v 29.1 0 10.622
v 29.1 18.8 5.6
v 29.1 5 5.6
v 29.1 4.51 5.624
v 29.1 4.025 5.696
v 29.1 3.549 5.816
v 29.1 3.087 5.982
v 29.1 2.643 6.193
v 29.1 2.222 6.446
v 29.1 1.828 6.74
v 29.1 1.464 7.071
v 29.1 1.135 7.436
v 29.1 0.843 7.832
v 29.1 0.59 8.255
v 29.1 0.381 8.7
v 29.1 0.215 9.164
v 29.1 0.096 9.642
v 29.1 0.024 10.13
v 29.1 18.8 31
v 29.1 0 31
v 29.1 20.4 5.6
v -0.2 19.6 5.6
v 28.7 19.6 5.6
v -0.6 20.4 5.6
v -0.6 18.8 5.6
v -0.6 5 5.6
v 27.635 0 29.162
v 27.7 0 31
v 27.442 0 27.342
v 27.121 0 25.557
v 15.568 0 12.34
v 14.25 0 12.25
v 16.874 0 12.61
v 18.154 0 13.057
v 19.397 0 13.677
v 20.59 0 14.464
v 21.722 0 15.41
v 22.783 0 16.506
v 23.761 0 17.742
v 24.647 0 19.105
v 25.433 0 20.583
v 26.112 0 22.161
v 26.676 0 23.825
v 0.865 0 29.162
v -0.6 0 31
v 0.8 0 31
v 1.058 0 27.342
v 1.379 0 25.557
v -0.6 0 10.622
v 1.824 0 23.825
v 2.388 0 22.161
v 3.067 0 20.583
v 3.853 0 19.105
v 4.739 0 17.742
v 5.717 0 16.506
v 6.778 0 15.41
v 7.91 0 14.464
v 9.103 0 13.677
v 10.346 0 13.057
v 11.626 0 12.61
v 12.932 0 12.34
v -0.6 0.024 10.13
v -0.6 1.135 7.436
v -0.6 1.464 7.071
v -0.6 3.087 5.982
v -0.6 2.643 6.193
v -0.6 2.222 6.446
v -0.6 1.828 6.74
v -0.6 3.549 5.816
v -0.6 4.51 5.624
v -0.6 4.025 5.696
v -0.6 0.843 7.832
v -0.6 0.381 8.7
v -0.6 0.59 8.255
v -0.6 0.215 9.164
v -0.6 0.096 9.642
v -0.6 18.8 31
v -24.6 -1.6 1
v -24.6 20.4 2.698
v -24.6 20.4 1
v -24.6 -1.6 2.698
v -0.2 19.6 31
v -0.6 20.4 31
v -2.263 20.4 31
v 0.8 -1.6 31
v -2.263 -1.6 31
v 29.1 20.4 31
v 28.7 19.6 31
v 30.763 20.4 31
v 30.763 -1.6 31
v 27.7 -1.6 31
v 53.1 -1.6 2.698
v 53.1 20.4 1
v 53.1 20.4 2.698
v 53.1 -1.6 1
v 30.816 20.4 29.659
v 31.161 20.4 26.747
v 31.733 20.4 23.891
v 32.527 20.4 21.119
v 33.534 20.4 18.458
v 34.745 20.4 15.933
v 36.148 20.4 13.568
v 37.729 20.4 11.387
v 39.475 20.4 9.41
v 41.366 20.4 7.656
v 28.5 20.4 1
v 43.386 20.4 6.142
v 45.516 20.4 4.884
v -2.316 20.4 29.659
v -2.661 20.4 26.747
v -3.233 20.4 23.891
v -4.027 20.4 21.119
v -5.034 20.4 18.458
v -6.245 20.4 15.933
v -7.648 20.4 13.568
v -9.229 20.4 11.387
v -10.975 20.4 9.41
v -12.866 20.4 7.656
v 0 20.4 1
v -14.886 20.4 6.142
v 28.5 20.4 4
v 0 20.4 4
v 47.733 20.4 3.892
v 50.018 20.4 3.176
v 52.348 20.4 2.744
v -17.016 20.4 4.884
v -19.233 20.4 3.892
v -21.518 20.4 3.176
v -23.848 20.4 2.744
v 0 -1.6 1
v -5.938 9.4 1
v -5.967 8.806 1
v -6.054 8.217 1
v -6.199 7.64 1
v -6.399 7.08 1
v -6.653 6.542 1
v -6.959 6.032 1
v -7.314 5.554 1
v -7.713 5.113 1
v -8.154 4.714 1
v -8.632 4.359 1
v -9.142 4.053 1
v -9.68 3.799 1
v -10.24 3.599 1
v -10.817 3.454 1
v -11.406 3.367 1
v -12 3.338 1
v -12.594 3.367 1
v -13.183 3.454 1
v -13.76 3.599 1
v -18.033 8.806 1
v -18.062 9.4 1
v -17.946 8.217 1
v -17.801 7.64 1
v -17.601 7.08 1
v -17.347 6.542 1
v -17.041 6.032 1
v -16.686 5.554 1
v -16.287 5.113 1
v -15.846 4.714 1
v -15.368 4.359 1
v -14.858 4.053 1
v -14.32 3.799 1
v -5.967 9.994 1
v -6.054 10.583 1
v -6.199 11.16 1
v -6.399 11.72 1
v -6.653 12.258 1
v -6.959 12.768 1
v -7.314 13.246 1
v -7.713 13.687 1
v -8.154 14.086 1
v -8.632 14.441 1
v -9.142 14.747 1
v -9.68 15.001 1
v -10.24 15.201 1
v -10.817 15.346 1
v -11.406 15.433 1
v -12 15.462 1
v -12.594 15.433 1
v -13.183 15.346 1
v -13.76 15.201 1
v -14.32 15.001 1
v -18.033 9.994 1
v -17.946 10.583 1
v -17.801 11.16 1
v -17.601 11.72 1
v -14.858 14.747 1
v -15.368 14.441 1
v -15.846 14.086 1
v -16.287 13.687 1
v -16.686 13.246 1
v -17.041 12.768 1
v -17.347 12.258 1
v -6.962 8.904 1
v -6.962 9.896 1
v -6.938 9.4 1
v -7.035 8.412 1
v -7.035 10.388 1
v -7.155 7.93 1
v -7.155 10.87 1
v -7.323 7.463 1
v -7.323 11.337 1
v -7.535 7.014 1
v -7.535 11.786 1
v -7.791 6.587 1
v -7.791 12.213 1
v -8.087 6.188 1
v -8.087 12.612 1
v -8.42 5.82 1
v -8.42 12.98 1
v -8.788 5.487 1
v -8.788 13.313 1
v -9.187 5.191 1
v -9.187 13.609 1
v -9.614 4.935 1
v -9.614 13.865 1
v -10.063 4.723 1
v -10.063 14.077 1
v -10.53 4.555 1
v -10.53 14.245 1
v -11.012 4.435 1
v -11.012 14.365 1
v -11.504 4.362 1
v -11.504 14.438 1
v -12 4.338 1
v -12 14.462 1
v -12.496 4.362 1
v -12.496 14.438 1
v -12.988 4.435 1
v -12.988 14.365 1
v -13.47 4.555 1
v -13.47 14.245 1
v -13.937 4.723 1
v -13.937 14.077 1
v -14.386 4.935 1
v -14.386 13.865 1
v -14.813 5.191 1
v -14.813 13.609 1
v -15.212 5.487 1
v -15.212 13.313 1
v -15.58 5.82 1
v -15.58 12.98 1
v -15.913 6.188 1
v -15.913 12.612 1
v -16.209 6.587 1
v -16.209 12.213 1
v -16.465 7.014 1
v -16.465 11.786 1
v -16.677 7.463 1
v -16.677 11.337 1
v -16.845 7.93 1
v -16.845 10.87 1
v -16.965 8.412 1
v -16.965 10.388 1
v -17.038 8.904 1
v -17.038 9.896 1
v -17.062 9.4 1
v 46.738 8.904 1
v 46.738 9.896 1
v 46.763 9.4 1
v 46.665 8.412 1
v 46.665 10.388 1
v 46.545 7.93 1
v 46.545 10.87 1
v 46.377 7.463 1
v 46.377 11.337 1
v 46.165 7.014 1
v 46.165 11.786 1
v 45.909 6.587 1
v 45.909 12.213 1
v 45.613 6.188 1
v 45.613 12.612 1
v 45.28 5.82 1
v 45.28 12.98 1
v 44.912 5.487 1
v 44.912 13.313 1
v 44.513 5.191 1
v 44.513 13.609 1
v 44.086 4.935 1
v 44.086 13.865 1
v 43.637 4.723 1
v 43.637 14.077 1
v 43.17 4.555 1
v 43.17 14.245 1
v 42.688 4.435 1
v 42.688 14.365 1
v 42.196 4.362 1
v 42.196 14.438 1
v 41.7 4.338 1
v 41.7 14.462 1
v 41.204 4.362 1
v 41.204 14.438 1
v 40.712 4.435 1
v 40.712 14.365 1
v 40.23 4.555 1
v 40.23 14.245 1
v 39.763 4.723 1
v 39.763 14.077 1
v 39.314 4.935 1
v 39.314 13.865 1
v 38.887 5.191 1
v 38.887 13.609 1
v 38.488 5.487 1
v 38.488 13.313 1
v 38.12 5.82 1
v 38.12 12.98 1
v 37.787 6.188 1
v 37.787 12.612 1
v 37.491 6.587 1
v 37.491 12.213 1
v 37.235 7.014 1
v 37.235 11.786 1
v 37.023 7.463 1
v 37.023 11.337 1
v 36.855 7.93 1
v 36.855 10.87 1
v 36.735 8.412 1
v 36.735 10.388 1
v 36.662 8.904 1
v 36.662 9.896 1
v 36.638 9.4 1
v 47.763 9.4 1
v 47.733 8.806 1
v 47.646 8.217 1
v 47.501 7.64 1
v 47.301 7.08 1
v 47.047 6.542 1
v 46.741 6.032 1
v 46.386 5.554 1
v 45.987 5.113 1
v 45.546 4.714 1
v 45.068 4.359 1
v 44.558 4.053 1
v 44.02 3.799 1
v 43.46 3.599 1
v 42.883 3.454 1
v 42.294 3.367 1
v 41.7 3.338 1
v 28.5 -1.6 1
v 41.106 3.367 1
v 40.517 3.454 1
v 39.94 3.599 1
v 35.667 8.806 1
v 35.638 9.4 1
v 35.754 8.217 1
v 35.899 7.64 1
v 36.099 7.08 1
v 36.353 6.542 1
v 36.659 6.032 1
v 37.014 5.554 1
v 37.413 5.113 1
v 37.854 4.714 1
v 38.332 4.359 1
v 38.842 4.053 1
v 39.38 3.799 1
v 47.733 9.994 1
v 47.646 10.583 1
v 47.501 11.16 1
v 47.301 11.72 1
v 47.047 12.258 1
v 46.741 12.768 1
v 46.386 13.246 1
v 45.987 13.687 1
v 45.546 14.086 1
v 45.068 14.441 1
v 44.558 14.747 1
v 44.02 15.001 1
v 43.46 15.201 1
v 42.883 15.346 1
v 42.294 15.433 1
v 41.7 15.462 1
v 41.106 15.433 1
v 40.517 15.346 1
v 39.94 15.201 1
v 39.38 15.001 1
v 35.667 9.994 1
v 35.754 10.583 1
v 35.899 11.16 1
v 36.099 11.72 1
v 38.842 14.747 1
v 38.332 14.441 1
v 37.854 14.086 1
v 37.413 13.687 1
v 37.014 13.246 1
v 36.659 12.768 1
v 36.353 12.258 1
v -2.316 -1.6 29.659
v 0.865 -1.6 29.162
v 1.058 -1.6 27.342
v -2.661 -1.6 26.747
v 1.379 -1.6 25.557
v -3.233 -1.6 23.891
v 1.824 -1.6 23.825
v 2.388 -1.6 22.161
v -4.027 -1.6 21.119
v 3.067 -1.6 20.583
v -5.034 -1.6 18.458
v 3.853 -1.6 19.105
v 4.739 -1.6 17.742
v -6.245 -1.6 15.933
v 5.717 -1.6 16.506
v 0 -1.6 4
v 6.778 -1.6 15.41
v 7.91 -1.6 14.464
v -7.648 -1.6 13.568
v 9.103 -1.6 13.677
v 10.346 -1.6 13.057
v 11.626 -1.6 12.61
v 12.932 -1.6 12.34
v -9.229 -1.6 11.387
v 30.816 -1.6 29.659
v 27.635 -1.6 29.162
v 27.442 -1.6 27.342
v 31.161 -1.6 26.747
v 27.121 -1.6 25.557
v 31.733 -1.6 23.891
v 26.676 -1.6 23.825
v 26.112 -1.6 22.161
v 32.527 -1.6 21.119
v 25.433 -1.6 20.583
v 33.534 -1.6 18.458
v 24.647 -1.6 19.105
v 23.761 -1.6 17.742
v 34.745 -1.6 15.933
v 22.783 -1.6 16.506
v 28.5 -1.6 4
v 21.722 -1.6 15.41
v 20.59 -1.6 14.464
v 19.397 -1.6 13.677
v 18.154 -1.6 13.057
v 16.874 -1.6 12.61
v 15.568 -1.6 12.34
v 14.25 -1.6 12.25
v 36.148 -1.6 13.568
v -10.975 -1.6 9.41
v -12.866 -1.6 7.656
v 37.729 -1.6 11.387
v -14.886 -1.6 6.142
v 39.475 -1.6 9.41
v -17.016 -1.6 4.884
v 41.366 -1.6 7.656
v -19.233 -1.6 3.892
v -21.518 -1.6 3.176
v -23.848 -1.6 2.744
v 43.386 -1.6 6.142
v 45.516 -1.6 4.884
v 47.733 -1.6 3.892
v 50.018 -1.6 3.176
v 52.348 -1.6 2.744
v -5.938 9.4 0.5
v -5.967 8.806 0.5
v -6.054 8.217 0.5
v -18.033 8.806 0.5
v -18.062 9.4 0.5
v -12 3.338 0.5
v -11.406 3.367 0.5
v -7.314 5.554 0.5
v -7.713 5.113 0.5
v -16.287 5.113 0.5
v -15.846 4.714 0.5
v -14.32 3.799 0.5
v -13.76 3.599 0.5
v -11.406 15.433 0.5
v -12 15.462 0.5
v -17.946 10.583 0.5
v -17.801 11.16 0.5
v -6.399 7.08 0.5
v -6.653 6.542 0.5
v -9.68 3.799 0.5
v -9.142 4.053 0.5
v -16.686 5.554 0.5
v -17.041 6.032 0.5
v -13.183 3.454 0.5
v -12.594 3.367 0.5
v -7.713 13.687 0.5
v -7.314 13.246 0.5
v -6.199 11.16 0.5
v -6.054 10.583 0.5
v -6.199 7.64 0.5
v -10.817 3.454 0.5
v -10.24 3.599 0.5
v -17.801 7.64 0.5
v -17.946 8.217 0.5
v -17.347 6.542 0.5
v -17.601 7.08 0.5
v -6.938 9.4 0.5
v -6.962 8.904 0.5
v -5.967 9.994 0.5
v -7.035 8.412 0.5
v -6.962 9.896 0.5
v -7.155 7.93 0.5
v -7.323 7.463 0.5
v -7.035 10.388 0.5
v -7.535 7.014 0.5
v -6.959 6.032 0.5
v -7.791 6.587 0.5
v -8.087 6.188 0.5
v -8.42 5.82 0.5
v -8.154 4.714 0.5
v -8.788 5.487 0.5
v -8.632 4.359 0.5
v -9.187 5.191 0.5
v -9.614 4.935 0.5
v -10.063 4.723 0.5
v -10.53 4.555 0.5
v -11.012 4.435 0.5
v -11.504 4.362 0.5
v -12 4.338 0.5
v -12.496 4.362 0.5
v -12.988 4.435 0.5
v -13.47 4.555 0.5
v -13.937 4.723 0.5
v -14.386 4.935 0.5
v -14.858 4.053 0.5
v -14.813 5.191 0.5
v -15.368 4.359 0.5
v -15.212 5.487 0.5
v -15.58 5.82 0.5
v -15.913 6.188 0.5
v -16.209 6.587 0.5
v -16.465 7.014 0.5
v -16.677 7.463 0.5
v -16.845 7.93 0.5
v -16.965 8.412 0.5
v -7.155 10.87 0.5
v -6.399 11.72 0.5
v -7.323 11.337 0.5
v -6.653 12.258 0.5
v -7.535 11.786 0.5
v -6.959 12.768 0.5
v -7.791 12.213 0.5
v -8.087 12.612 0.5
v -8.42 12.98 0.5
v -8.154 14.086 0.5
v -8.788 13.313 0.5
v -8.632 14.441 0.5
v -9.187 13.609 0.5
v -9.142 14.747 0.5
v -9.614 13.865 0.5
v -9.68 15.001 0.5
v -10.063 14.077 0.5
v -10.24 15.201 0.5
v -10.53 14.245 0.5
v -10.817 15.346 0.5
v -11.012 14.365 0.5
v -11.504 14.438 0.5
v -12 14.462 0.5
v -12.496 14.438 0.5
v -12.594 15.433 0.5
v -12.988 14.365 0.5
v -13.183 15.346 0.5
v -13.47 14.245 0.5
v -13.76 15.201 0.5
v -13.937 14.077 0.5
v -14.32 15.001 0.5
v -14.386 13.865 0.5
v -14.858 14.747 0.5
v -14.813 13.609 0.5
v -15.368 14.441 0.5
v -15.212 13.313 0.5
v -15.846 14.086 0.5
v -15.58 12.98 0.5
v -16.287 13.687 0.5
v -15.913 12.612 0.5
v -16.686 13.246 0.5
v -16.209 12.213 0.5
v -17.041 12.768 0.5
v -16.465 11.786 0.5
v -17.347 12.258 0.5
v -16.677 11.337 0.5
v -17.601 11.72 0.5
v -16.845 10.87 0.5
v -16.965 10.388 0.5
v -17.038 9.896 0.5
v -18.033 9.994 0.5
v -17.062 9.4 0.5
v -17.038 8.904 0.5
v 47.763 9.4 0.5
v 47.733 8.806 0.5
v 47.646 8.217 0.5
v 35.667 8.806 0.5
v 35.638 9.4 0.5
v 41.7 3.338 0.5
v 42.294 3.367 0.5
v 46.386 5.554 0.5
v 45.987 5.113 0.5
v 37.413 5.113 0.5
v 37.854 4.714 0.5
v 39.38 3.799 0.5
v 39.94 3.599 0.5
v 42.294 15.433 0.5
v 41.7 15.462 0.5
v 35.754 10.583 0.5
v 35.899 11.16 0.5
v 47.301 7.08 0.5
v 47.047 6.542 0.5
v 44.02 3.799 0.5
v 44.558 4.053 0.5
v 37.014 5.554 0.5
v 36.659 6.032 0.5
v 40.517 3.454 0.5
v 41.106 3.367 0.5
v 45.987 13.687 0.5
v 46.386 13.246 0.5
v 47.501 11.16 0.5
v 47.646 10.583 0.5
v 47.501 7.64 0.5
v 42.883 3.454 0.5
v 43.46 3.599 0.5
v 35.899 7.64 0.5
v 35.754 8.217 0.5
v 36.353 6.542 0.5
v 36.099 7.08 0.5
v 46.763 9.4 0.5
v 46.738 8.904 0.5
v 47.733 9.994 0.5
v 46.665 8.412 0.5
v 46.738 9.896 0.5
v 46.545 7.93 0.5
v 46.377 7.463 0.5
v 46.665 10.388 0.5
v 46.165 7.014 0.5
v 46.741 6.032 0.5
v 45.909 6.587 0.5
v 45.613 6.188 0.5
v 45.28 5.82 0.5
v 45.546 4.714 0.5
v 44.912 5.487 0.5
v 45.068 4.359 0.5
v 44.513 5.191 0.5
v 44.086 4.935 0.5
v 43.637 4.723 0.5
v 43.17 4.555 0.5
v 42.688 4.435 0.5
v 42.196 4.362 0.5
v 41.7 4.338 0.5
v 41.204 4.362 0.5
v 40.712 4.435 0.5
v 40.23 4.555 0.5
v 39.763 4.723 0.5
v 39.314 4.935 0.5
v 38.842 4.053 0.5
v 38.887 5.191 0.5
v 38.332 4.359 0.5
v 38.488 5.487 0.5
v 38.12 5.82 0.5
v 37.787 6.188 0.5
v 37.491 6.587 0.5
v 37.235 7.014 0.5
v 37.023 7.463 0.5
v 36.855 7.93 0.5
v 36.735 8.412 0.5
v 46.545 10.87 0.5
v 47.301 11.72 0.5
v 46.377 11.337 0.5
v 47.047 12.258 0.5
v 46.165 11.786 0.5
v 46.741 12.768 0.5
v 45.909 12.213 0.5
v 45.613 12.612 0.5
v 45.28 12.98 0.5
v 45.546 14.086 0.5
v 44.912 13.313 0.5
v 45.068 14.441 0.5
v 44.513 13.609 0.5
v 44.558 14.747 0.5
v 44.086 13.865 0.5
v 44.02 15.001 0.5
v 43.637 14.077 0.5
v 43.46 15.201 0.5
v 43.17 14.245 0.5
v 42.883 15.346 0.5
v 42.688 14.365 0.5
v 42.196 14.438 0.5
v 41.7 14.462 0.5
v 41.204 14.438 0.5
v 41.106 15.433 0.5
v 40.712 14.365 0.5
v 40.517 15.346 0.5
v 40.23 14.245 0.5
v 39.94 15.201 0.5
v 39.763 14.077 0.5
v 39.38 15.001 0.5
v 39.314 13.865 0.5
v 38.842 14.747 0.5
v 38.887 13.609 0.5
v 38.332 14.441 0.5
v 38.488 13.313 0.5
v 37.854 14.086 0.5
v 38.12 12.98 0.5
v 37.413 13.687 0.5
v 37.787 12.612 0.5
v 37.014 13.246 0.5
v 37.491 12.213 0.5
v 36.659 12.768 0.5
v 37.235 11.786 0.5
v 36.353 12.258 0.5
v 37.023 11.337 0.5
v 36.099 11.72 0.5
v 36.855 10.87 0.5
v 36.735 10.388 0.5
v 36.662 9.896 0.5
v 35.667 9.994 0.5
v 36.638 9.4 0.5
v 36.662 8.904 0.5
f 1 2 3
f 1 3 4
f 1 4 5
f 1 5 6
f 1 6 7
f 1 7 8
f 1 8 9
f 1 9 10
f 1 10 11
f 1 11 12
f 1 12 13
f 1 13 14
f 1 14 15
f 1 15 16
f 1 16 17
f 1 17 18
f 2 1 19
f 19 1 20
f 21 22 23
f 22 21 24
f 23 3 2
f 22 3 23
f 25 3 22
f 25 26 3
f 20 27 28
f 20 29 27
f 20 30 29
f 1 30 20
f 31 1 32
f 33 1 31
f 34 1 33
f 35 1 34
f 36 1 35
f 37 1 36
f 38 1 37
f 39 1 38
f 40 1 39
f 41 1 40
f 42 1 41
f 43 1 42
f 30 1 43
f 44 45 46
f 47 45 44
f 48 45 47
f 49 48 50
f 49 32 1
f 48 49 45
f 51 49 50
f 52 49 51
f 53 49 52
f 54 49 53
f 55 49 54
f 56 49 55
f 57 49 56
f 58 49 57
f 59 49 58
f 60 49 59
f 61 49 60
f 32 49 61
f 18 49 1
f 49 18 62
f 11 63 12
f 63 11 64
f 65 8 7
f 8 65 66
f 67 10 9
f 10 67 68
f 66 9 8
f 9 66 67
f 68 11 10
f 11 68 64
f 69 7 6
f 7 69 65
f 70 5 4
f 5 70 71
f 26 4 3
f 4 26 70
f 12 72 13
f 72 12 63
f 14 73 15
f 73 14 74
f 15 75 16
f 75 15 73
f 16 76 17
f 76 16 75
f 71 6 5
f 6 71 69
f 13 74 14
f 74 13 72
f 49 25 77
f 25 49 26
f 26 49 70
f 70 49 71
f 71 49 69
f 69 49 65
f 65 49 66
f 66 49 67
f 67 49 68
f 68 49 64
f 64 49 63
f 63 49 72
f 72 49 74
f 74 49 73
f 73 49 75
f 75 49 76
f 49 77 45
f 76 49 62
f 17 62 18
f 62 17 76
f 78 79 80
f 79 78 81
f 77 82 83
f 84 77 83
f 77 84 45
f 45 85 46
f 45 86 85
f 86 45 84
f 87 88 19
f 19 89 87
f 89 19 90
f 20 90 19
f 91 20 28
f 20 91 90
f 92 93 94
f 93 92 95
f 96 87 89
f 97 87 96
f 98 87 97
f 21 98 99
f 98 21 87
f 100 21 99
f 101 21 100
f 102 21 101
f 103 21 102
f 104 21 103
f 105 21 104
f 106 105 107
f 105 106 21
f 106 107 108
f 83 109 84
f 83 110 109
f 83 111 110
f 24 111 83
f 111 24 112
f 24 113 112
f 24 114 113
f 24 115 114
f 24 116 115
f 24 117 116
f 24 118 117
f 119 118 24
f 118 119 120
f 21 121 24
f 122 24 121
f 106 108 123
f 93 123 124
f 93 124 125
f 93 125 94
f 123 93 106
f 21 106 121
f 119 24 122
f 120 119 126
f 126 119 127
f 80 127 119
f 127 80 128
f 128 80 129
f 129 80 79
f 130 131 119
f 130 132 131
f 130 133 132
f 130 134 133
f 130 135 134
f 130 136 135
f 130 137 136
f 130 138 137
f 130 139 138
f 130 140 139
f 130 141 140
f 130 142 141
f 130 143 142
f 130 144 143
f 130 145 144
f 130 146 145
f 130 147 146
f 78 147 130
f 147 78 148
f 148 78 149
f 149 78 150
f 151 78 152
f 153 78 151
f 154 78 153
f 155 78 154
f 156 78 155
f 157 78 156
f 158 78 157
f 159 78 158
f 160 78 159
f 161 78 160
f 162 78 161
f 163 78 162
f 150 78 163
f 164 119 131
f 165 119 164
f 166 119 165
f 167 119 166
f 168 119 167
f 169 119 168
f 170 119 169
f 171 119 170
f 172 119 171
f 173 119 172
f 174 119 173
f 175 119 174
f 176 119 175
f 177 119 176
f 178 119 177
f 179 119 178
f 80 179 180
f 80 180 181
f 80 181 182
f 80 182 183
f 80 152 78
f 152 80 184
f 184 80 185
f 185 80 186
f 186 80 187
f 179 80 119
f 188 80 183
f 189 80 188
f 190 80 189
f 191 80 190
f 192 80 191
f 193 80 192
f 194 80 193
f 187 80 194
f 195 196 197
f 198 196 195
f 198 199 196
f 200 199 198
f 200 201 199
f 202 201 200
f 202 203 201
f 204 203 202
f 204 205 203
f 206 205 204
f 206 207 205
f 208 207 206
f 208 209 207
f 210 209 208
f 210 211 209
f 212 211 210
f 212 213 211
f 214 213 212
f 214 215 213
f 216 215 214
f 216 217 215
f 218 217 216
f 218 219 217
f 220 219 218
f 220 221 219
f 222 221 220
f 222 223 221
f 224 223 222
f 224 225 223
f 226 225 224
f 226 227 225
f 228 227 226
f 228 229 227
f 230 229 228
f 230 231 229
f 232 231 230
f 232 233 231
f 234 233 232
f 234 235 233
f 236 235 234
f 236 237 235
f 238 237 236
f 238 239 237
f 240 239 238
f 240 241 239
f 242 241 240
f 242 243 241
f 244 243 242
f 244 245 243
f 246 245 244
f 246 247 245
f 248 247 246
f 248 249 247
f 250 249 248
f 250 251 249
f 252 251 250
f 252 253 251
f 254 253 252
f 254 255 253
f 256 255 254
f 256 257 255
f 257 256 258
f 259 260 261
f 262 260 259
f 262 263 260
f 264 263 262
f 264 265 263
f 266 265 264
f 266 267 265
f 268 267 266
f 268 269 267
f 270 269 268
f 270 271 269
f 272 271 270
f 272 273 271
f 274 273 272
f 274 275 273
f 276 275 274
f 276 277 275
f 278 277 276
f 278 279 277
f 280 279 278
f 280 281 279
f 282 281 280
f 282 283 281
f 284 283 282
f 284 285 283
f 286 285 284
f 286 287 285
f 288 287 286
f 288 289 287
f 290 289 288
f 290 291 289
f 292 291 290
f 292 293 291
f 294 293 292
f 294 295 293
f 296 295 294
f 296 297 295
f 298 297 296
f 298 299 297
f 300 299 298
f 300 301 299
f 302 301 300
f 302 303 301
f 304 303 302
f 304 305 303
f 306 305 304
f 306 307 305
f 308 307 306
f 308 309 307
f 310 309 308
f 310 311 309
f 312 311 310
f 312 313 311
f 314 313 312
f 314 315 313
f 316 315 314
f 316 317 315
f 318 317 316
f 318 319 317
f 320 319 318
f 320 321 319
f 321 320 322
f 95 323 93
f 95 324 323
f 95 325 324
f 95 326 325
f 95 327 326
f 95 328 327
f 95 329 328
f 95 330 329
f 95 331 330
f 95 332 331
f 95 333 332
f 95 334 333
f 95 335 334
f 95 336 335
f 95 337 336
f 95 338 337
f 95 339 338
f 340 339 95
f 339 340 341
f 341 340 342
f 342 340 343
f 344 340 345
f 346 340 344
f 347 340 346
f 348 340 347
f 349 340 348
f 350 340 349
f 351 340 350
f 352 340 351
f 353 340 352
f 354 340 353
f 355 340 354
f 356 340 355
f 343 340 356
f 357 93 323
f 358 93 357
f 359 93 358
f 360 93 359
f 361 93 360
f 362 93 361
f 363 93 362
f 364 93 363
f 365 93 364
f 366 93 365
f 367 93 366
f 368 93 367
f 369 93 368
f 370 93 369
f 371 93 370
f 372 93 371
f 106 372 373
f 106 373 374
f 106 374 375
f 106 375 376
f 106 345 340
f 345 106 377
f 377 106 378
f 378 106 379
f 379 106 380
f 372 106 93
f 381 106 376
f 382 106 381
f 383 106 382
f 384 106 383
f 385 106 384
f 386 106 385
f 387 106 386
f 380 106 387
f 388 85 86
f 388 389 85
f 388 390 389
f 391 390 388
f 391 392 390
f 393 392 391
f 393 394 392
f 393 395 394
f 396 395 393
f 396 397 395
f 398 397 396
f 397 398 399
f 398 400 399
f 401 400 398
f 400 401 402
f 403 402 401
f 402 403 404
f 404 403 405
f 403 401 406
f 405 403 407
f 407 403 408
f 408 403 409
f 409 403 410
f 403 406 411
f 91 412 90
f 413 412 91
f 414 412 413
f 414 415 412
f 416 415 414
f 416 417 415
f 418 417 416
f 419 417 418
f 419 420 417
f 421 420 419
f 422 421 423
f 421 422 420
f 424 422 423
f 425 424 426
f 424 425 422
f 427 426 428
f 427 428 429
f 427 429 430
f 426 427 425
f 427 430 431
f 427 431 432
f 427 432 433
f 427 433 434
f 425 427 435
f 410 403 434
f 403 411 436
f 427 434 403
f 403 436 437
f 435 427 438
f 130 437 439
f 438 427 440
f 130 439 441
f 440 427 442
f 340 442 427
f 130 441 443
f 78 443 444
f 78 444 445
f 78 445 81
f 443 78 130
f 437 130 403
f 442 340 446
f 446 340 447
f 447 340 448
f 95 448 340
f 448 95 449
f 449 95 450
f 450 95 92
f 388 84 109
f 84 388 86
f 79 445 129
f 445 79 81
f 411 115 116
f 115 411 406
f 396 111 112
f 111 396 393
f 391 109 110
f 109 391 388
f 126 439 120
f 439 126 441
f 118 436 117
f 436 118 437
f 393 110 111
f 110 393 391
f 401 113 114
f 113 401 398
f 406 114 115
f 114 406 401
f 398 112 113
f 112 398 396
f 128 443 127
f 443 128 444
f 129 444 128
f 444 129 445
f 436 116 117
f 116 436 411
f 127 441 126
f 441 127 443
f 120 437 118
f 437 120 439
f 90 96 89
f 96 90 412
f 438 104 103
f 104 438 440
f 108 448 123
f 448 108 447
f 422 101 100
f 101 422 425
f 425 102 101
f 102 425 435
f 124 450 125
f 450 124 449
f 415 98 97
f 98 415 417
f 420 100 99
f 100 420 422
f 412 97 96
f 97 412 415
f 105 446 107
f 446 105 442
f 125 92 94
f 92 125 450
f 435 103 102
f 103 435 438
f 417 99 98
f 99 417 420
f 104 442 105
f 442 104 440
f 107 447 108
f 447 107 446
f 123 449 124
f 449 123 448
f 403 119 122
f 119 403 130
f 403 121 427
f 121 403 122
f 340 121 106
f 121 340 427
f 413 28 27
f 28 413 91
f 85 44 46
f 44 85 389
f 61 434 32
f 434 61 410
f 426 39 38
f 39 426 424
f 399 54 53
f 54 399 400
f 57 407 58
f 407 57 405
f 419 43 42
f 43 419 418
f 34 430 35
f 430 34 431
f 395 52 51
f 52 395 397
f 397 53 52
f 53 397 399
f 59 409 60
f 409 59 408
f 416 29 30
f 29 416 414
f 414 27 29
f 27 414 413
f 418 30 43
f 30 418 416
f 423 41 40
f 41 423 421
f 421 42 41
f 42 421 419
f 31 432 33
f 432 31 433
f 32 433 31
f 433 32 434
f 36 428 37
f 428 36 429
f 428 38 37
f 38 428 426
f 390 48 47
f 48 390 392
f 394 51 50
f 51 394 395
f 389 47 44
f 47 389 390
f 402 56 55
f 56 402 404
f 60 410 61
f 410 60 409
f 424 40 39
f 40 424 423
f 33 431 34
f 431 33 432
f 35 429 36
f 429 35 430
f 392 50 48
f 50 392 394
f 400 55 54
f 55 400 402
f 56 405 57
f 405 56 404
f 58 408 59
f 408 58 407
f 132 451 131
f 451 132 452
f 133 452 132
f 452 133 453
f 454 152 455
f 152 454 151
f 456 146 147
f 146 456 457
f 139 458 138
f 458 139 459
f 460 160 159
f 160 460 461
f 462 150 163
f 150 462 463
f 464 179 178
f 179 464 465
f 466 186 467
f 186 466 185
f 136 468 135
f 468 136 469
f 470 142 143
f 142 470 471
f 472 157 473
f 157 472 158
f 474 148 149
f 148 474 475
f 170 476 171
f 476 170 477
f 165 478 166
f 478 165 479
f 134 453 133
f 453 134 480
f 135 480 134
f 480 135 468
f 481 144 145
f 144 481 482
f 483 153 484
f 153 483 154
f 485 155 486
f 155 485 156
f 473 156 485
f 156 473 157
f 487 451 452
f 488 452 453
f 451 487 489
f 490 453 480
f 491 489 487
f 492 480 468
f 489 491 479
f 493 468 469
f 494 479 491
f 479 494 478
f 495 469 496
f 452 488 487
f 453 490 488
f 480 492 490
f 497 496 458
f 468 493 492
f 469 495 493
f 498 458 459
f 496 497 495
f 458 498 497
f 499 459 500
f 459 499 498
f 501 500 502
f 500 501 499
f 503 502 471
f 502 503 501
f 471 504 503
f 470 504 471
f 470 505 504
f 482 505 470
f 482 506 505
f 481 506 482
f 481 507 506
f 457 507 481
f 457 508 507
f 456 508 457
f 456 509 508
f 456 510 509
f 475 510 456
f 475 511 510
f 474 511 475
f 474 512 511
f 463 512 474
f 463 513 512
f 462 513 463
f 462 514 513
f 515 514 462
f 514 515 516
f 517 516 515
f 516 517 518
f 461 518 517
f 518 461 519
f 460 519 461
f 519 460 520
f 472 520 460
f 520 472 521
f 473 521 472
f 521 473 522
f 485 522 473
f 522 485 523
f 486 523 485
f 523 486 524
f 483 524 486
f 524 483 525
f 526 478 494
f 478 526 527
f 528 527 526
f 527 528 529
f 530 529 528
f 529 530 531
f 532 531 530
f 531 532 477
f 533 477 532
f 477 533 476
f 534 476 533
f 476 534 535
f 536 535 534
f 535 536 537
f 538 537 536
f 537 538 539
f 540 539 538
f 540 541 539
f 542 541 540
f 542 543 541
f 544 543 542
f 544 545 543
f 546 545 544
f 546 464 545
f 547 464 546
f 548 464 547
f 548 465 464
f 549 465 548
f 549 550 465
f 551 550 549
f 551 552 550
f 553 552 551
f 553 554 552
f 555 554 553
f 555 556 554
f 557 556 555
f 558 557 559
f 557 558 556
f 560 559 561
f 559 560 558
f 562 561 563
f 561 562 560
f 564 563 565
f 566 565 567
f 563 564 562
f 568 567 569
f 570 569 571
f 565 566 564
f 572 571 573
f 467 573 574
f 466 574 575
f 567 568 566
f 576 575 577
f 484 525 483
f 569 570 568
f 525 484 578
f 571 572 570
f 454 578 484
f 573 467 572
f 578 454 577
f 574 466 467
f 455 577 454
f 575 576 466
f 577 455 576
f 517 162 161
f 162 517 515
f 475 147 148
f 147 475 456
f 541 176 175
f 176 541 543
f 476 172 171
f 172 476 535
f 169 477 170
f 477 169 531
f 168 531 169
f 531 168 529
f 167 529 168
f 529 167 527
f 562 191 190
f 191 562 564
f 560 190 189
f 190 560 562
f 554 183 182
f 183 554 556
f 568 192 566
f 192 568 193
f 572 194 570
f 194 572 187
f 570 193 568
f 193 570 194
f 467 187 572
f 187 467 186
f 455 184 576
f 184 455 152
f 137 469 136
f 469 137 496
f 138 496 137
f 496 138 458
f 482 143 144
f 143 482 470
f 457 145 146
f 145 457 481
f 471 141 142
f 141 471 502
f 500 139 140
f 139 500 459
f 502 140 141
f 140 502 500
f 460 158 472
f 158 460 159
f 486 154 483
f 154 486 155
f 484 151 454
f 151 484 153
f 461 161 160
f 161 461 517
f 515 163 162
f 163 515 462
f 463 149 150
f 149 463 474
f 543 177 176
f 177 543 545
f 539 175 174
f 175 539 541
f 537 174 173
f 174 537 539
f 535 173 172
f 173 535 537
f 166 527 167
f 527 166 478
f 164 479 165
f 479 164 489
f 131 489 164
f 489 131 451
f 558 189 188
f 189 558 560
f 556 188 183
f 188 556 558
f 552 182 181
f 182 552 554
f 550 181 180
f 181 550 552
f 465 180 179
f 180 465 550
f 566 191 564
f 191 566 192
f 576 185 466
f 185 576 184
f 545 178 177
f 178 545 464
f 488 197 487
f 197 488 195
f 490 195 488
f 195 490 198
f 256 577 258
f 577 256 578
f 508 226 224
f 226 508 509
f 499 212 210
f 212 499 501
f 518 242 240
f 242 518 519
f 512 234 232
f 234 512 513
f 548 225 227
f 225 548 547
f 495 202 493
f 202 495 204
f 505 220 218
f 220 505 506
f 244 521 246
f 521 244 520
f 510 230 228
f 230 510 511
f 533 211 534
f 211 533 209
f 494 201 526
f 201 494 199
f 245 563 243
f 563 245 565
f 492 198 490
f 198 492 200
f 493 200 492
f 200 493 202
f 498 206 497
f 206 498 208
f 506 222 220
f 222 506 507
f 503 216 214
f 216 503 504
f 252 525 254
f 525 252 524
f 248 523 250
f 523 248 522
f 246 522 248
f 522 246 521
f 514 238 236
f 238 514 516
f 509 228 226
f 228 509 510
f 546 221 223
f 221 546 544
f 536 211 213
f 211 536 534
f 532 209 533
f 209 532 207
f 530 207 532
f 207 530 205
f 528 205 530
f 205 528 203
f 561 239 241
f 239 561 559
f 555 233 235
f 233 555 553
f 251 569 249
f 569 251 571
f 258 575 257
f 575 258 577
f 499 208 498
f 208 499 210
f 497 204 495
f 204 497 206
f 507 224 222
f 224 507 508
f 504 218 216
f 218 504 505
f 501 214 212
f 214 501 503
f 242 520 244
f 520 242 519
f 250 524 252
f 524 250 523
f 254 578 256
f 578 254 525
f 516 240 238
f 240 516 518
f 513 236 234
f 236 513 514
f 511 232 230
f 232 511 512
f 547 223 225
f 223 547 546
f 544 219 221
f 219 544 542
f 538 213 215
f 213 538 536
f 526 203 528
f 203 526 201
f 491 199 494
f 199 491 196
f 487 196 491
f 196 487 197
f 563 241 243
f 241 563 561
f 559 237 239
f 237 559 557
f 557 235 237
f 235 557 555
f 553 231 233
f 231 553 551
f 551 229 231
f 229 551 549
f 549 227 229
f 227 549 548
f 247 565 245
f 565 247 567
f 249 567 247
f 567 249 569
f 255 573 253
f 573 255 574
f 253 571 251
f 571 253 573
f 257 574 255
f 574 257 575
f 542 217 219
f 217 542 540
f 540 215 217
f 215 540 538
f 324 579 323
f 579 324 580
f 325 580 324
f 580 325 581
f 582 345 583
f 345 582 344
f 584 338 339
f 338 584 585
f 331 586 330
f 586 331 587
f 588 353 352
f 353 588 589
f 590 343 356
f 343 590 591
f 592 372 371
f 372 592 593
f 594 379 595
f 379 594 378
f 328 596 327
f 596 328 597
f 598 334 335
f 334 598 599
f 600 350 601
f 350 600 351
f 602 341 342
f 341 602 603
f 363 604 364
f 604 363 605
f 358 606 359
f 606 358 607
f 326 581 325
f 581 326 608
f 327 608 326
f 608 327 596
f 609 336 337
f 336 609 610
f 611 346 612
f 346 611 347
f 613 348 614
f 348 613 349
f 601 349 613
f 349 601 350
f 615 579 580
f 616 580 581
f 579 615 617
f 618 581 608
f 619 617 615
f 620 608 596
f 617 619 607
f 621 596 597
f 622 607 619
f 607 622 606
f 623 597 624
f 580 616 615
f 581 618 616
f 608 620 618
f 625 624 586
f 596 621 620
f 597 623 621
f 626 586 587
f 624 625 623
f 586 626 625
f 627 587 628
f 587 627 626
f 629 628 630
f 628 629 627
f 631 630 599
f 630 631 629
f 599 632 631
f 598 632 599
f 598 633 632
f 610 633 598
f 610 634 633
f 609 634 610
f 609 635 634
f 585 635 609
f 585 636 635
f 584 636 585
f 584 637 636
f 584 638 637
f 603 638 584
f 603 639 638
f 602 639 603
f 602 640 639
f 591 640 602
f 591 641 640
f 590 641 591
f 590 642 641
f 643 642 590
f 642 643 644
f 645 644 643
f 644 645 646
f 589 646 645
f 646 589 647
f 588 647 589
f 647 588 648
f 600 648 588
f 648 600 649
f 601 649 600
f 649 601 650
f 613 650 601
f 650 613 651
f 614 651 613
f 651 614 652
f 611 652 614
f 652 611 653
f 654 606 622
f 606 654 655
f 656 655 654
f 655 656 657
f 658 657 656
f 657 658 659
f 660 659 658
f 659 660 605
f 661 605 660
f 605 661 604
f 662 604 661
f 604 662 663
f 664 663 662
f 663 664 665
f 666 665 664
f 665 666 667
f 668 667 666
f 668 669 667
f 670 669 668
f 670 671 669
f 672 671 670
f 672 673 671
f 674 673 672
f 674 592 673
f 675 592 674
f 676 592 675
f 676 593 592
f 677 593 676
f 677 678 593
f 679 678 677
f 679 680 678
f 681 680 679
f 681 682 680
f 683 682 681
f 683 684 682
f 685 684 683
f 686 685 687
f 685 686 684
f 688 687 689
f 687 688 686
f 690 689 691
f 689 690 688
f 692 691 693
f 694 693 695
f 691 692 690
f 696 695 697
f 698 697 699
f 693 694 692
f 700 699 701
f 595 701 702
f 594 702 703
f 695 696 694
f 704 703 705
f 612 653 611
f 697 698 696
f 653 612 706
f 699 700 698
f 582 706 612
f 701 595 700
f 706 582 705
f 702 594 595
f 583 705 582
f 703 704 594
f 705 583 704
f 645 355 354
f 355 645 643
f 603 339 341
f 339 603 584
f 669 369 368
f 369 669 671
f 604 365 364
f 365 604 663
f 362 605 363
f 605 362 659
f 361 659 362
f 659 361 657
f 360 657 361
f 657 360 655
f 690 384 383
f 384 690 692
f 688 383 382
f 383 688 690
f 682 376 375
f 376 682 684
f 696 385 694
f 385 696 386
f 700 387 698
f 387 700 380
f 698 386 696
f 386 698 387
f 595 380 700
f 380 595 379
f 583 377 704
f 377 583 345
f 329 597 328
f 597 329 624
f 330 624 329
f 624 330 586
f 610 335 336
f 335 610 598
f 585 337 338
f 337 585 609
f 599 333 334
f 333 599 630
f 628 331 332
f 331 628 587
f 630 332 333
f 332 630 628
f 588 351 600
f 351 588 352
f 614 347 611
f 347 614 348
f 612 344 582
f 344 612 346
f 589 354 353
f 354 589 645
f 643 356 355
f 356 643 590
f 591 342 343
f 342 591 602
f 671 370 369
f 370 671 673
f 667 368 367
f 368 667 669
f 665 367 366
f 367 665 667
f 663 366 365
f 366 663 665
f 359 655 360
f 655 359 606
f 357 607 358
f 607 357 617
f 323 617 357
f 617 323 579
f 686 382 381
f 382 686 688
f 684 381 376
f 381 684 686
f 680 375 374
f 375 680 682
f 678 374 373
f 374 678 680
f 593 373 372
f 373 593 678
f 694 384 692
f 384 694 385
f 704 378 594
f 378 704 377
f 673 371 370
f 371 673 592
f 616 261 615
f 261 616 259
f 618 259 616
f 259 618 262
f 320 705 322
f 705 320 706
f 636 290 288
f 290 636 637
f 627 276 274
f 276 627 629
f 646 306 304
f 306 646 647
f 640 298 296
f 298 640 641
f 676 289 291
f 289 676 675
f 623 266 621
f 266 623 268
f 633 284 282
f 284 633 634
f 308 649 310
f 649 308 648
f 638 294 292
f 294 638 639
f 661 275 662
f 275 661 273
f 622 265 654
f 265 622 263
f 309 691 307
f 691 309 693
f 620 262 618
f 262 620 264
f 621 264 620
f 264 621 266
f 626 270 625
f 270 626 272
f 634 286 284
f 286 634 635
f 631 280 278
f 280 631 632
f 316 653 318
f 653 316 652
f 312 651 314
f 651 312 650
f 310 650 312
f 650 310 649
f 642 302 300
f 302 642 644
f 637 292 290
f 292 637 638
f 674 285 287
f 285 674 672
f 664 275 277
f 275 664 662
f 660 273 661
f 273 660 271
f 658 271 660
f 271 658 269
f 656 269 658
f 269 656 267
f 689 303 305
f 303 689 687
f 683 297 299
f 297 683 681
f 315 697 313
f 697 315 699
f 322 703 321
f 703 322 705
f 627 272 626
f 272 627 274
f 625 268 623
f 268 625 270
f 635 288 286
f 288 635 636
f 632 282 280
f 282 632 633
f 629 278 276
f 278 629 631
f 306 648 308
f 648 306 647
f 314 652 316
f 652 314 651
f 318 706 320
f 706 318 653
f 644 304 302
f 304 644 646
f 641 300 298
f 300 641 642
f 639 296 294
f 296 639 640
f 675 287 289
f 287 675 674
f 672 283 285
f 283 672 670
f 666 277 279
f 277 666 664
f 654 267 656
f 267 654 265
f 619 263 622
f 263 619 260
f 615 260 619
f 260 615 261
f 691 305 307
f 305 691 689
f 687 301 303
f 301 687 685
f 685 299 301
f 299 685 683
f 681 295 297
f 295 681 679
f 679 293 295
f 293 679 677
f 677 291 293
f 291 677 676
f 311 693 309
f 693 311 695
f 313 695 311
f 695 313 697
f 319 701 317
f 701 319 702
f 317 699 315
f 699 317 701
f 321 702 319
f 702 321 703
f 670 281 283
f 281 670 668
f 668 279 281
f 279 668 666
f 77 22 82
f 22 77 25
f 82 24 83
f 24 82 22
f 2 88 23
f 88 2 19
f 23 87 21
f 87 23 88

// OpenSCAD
// file: ../../modules/roundedcube.scad
// A single integer creates a cube with the specified wall distance. Default [1, 1, 1]
// size = 5;

// An [x, y, z] vector specifies distance on each axis. Default [1, 1, 1]
// size = [2, 3, 5];

// Whether or not to place the object centered on the origin. Default false
// center = true|false;

// Specify a rounding radius. Default 0.5
// radius = 0.5

// Specify where to apply the rounded corners. Default "all"
// apply_to = "all"|"x"|"y"|"z"|"zmax"|"zmin"|"xmax"|"xmin"|"ymax"|"ymin"

// Higher definition curves
$fs = $preview ? $fs : 0.01;

module roundedcube(size = [1, 1, 1], center = false, radius = 0.5, apply_to = "all") {
	// If single value, convert to [x, y, z] vector
	size = (size[0] == undef) ? [size, size, size] : size;

    echo(str("roundedcube(", size, ", radius=", radius, ", apply_to=", apply_to));

	translate_min = 0;
	translate_xmax = size[0];
	translate_ymax = size[1];
	translate_zmax = size[2];

	diameter = radius * 2;

    function adj2(i,dt,df) = (i==0)?dt:df;
    function adj(i,d) = adj2(i,d,-d);
    function adjR(i) = adj(i,radius);
    
	obj_translate = (center == false) ?
		[0, 0, 0] : [
			-(size[0] / 2),
			-(size[1] / 2),
			-(size[2] / 2)
		];

	translate(v = obj_translate) {
		hull() {
			for (xi = [0:1]) {
                translate_x = [translate_min, translate_xmax][xi];
				x_at = (xi == 0) ? "min" : "max";
				for (yi = [0:1]) {
                    translate_y = [translate_min, translate_ymax][yi];
   				    y_at = (yi == 0) ? "min" : "max";
					for (zi = [0:1]) {
                        translate_z = [translate_min, translate_zmax][zi];
    	     			z_at = (zi == 0) ? "min" : "max";

						if (
							(apply_to == "all") ||
							(apply_to == "xmin" && x_at == "min") || (apply_to == "xmax" && x_at == "max") ||
							(apply_to == "ymin" && y_at == "min") || (apply_to == "ymax" && y_at == "max") ||
							(apply_to == "zmin" && z_at == "min") || (apply_to == "zmax" && z_at == "max")
						) {
                            // GGS: Separate translates to asccomodate changes allowing sizes < 3 x radius
    						translate(v = [translate_x+adjR(xi), translate_y+adjR(yi), translate_z+adjR(zi)])
							  sphere(r = radius);
						} else {
							rotate = 
								(apply_to == "xmin" || apply_to == "xmax" || apply_to == "x") ? [0, 90, 0] : (
								(apply_to == "ymin" || apply_to == "ymax" || apply_to == "y") ? [90, 90, 0] :
								[0, 0, 0]
							);
                            //Compute cylinder height to make it work with cubbe sizes up to 3xradius which did not work
                            // in original because cylinders would "eat" spheres
                            h1 =
								(apply_to == "xmin" || apply_to == "xmax" || apply_to == "x") ? size[0]-radius : (
								(apply_to == "ymin" || apply_to == "ymax" || apply_to == "y") ? size[1]-radius :
								size[2]-radius
							);
                            h2 =
								(apply_to == "xmin" || apply_to == "xmax" || apply_to == "x") ? size[0]/4 : (
								(apply_to == "ymin" || apply_to == "ymax" || apply_to == "y") ? size[1]/4 :
								size[2]/4
							);
                            h=(h1<h2 && h1>0)?h1:h2;
                            height=(h<radius)?h:radius;
                            //echo(str("h1=",h1));
                            //echo(str("h2=",h2));
                            //echo(str("h=",h));
                            //echo(str("height=",height));
                            trans =
								(apply_to == "xmin" || apply_to == "xmax" || apply_to == "x") ? [adj2(xi,0,-height),adjR(yi),adjR(zi)] : (
								(apply_to == "ymin" || apply_to == "ymax" || apply_to == "y") ? [adjR(xi),adj2(yi,0,-height),adjR(zi)] :
								[adjR(xi),adjR(yi),adj2(zi,0,-height)]
							);
                            //echo(trans);
                            translate(v = [translate_x+trans[0], translate_y+trans[1], translate_z+trans[2]])
		  					  rotate(a = rotate)
							    cylinder(h = height, r = radius, center = false);
						}
					}
				}
			}
		}
	}
}
// main file
usg_width = 28.5;
usg_width_feet = 29.25;
usg_depth_to_feet = 21.5;
usg_depth = 135.1;
usg_height = 135.1;
usg_corner_fillet = 10;
usg_corner_fillet_rad = usg_corner_fillet / 2;
usg_mounthole_front = 65.5;
usg_mounthole_bottom = 16.25;
usg_mounthole_diameter = 3;

echo("USG_DEPTH=", usg_depth);
echo("USG_DEPTH_HALF=", usg_depth/2);

//foot_diameter = 9.525;

stiffness = 1.6;
tolerance = 0.6;
clearance = 3;

foot_depth = 22;
foot_width = 24;
foot_height = 30;

grip_height = 0.4;
grip_depth = grip_height * 4;

use <../../modules/roundedcube.scad>;

$fn = $preview ? 8 : 64;

module usg() {
    difference() {
        translate([usg_width, 0, 0]) rotate([0, -90, 0]) hull() {
            // bottom front
            translate([usg_corner_fillet_rad, usg_corner_fillet_rad, 0]) cylinder(h=usg_width, d=usg_corner_fillet);
            translate([usg_height - usg_corner_fillet_rad, usg_corner_fillet_rad, 0]) cylinder(h=usg_width, d=usg_corner_fillet);
            translate([usg_corner_fillet_rad, usg_height - usg_corner_fillet_rad, 0]) cylinder(h=usg_width, d=usg_corner_fillet);
            translate([usg_height - usg_corner_fillet_rad, usg_height - usg_corner_fillet_rad, 0]) cylinder(h=usg_width, d=usg_corner_fillet);
        }
        //cube([usg_width, usg_depth, usg_height], center=false);
        union() {
            translate([usg_width, usg_depth / 2, usg_mounthole_bottom + usg_mounthole_diameter]) {
                //translate([-50, 0, 6]) rotate([0, 90, 0]) cylinder(h=100, r=0.5);
                hull() {
                    rotate([0, 90, 0]) cylinder(h=20, r=usg_mounthole_diameter);
                    translate([0, 0, 12]) rotate([0, 90, 0]) cylinder(h=20, r=usg_mounthole_diameter);
                }
                hull() {
                    translate([0, 6, 6]) rotate([0, 90, 0]) cylinder(h=20, r=usg_mounthole_diameter);
                    translate([0, -6, 6]) rotate([0, 90, 0]) cylinder(h=20, r=usg_mounthole_diameter);
                }
            }
        }
    }
}

module foot_bumper() {
    foot_diameter = 9.525;
    //foot_diameter = 8;
    buffer = 0.6;
    nub_width = 1;
    foot_height = 0.5;

    difference() {
        rotate([90, 0, 0]) cylinder(h=foot_height, r=(foot_diameter+buffer+nub_width*2) / 2);
        rotate([90, 0, 0]) cylinder(h=foot_height, r=(foot_diameter+buffer) / 2, $fn=64);
    }
}

module usg_feet() {
    feet_width = foot_width * 2 + usg_width + tolerance * 2;
    usg_carveout_width = usg_width + tolerance * 2;

    translate([-(foot_width + tolerance), -stiffness, 0]) 
    difference() {
        cube([feet_width, foot_depth, foot_height]);
        translate([-stiffness, 0, foot_height + stiffness]) resize([foot_width * 2, foot_depth, foot_height * 2]) rotate([-90, 0, 0]) cylinder(h=foot_depth, d=foot_width / 2);
        translate([feet_width + stiffness, 0, foot_height + stiffness]) resize([foot_width * 2, foot_depth, foot_height * 2]) rotate([-90, 0, 0]) cylinder(h=foot_depth, d=foot_width / 2);
        translate([foot_width + tolerance, 0, 0]) cube([usg_width, foot_depth, clearance]);

        // usg carveout
        translate([foot_width, stiffness, stiffness + clearance]) resize([usg_carveout_width, usg_height, usg_depth + tolerance]) usg();
        translate([foot_width + usg_carveout_width/2, 0, foot_height]) rotate([-90, 0, 0]) resize([usg_width + - stiffness, foot_height * 1.25, foot_height * 2]) cylinder(h=foot_depth, d=usg_width - stiffness * 2);
    }

    translate([-tolerance, foot_depth - stiffness, 0]) rotate([0, 0, -90]) linear_extrude(height = foot_height, convexity = 10) polygon(points = [[0,0], [grip_depth/2,grip_height], [grip_depth,0], [grip_depth,-0.1], [0,-0.1]]);
    translate([usg_carveout_width - tolerance, foot_depth - stiffness - grip_depth, 0]) rotate([0, 0, 90]) linear_extrude(height = foot_height, convexity = 10) polygon(points = [[0,0], [grip_depth/2,grip_height], [grip_depth,0], [grip_depth,-0.1], [0,-0.1]]);
    #translate([-foot_width / 2, -stiffness + foot_depth / 2, 0]) rotate([90, 0, 0]) foot_bumper();
    #translate([-foot_width / 2 + usg_carveout_width + foot_width, -stiffness + foot_depth / 2, 0]) rotate([90, 0, 0]) foot_bumper();
}

if ($preview) { translate([0, 0, stiffness + clearance]) color("white") usg(); }
translate([0, 0, 1]) usg_feet();
